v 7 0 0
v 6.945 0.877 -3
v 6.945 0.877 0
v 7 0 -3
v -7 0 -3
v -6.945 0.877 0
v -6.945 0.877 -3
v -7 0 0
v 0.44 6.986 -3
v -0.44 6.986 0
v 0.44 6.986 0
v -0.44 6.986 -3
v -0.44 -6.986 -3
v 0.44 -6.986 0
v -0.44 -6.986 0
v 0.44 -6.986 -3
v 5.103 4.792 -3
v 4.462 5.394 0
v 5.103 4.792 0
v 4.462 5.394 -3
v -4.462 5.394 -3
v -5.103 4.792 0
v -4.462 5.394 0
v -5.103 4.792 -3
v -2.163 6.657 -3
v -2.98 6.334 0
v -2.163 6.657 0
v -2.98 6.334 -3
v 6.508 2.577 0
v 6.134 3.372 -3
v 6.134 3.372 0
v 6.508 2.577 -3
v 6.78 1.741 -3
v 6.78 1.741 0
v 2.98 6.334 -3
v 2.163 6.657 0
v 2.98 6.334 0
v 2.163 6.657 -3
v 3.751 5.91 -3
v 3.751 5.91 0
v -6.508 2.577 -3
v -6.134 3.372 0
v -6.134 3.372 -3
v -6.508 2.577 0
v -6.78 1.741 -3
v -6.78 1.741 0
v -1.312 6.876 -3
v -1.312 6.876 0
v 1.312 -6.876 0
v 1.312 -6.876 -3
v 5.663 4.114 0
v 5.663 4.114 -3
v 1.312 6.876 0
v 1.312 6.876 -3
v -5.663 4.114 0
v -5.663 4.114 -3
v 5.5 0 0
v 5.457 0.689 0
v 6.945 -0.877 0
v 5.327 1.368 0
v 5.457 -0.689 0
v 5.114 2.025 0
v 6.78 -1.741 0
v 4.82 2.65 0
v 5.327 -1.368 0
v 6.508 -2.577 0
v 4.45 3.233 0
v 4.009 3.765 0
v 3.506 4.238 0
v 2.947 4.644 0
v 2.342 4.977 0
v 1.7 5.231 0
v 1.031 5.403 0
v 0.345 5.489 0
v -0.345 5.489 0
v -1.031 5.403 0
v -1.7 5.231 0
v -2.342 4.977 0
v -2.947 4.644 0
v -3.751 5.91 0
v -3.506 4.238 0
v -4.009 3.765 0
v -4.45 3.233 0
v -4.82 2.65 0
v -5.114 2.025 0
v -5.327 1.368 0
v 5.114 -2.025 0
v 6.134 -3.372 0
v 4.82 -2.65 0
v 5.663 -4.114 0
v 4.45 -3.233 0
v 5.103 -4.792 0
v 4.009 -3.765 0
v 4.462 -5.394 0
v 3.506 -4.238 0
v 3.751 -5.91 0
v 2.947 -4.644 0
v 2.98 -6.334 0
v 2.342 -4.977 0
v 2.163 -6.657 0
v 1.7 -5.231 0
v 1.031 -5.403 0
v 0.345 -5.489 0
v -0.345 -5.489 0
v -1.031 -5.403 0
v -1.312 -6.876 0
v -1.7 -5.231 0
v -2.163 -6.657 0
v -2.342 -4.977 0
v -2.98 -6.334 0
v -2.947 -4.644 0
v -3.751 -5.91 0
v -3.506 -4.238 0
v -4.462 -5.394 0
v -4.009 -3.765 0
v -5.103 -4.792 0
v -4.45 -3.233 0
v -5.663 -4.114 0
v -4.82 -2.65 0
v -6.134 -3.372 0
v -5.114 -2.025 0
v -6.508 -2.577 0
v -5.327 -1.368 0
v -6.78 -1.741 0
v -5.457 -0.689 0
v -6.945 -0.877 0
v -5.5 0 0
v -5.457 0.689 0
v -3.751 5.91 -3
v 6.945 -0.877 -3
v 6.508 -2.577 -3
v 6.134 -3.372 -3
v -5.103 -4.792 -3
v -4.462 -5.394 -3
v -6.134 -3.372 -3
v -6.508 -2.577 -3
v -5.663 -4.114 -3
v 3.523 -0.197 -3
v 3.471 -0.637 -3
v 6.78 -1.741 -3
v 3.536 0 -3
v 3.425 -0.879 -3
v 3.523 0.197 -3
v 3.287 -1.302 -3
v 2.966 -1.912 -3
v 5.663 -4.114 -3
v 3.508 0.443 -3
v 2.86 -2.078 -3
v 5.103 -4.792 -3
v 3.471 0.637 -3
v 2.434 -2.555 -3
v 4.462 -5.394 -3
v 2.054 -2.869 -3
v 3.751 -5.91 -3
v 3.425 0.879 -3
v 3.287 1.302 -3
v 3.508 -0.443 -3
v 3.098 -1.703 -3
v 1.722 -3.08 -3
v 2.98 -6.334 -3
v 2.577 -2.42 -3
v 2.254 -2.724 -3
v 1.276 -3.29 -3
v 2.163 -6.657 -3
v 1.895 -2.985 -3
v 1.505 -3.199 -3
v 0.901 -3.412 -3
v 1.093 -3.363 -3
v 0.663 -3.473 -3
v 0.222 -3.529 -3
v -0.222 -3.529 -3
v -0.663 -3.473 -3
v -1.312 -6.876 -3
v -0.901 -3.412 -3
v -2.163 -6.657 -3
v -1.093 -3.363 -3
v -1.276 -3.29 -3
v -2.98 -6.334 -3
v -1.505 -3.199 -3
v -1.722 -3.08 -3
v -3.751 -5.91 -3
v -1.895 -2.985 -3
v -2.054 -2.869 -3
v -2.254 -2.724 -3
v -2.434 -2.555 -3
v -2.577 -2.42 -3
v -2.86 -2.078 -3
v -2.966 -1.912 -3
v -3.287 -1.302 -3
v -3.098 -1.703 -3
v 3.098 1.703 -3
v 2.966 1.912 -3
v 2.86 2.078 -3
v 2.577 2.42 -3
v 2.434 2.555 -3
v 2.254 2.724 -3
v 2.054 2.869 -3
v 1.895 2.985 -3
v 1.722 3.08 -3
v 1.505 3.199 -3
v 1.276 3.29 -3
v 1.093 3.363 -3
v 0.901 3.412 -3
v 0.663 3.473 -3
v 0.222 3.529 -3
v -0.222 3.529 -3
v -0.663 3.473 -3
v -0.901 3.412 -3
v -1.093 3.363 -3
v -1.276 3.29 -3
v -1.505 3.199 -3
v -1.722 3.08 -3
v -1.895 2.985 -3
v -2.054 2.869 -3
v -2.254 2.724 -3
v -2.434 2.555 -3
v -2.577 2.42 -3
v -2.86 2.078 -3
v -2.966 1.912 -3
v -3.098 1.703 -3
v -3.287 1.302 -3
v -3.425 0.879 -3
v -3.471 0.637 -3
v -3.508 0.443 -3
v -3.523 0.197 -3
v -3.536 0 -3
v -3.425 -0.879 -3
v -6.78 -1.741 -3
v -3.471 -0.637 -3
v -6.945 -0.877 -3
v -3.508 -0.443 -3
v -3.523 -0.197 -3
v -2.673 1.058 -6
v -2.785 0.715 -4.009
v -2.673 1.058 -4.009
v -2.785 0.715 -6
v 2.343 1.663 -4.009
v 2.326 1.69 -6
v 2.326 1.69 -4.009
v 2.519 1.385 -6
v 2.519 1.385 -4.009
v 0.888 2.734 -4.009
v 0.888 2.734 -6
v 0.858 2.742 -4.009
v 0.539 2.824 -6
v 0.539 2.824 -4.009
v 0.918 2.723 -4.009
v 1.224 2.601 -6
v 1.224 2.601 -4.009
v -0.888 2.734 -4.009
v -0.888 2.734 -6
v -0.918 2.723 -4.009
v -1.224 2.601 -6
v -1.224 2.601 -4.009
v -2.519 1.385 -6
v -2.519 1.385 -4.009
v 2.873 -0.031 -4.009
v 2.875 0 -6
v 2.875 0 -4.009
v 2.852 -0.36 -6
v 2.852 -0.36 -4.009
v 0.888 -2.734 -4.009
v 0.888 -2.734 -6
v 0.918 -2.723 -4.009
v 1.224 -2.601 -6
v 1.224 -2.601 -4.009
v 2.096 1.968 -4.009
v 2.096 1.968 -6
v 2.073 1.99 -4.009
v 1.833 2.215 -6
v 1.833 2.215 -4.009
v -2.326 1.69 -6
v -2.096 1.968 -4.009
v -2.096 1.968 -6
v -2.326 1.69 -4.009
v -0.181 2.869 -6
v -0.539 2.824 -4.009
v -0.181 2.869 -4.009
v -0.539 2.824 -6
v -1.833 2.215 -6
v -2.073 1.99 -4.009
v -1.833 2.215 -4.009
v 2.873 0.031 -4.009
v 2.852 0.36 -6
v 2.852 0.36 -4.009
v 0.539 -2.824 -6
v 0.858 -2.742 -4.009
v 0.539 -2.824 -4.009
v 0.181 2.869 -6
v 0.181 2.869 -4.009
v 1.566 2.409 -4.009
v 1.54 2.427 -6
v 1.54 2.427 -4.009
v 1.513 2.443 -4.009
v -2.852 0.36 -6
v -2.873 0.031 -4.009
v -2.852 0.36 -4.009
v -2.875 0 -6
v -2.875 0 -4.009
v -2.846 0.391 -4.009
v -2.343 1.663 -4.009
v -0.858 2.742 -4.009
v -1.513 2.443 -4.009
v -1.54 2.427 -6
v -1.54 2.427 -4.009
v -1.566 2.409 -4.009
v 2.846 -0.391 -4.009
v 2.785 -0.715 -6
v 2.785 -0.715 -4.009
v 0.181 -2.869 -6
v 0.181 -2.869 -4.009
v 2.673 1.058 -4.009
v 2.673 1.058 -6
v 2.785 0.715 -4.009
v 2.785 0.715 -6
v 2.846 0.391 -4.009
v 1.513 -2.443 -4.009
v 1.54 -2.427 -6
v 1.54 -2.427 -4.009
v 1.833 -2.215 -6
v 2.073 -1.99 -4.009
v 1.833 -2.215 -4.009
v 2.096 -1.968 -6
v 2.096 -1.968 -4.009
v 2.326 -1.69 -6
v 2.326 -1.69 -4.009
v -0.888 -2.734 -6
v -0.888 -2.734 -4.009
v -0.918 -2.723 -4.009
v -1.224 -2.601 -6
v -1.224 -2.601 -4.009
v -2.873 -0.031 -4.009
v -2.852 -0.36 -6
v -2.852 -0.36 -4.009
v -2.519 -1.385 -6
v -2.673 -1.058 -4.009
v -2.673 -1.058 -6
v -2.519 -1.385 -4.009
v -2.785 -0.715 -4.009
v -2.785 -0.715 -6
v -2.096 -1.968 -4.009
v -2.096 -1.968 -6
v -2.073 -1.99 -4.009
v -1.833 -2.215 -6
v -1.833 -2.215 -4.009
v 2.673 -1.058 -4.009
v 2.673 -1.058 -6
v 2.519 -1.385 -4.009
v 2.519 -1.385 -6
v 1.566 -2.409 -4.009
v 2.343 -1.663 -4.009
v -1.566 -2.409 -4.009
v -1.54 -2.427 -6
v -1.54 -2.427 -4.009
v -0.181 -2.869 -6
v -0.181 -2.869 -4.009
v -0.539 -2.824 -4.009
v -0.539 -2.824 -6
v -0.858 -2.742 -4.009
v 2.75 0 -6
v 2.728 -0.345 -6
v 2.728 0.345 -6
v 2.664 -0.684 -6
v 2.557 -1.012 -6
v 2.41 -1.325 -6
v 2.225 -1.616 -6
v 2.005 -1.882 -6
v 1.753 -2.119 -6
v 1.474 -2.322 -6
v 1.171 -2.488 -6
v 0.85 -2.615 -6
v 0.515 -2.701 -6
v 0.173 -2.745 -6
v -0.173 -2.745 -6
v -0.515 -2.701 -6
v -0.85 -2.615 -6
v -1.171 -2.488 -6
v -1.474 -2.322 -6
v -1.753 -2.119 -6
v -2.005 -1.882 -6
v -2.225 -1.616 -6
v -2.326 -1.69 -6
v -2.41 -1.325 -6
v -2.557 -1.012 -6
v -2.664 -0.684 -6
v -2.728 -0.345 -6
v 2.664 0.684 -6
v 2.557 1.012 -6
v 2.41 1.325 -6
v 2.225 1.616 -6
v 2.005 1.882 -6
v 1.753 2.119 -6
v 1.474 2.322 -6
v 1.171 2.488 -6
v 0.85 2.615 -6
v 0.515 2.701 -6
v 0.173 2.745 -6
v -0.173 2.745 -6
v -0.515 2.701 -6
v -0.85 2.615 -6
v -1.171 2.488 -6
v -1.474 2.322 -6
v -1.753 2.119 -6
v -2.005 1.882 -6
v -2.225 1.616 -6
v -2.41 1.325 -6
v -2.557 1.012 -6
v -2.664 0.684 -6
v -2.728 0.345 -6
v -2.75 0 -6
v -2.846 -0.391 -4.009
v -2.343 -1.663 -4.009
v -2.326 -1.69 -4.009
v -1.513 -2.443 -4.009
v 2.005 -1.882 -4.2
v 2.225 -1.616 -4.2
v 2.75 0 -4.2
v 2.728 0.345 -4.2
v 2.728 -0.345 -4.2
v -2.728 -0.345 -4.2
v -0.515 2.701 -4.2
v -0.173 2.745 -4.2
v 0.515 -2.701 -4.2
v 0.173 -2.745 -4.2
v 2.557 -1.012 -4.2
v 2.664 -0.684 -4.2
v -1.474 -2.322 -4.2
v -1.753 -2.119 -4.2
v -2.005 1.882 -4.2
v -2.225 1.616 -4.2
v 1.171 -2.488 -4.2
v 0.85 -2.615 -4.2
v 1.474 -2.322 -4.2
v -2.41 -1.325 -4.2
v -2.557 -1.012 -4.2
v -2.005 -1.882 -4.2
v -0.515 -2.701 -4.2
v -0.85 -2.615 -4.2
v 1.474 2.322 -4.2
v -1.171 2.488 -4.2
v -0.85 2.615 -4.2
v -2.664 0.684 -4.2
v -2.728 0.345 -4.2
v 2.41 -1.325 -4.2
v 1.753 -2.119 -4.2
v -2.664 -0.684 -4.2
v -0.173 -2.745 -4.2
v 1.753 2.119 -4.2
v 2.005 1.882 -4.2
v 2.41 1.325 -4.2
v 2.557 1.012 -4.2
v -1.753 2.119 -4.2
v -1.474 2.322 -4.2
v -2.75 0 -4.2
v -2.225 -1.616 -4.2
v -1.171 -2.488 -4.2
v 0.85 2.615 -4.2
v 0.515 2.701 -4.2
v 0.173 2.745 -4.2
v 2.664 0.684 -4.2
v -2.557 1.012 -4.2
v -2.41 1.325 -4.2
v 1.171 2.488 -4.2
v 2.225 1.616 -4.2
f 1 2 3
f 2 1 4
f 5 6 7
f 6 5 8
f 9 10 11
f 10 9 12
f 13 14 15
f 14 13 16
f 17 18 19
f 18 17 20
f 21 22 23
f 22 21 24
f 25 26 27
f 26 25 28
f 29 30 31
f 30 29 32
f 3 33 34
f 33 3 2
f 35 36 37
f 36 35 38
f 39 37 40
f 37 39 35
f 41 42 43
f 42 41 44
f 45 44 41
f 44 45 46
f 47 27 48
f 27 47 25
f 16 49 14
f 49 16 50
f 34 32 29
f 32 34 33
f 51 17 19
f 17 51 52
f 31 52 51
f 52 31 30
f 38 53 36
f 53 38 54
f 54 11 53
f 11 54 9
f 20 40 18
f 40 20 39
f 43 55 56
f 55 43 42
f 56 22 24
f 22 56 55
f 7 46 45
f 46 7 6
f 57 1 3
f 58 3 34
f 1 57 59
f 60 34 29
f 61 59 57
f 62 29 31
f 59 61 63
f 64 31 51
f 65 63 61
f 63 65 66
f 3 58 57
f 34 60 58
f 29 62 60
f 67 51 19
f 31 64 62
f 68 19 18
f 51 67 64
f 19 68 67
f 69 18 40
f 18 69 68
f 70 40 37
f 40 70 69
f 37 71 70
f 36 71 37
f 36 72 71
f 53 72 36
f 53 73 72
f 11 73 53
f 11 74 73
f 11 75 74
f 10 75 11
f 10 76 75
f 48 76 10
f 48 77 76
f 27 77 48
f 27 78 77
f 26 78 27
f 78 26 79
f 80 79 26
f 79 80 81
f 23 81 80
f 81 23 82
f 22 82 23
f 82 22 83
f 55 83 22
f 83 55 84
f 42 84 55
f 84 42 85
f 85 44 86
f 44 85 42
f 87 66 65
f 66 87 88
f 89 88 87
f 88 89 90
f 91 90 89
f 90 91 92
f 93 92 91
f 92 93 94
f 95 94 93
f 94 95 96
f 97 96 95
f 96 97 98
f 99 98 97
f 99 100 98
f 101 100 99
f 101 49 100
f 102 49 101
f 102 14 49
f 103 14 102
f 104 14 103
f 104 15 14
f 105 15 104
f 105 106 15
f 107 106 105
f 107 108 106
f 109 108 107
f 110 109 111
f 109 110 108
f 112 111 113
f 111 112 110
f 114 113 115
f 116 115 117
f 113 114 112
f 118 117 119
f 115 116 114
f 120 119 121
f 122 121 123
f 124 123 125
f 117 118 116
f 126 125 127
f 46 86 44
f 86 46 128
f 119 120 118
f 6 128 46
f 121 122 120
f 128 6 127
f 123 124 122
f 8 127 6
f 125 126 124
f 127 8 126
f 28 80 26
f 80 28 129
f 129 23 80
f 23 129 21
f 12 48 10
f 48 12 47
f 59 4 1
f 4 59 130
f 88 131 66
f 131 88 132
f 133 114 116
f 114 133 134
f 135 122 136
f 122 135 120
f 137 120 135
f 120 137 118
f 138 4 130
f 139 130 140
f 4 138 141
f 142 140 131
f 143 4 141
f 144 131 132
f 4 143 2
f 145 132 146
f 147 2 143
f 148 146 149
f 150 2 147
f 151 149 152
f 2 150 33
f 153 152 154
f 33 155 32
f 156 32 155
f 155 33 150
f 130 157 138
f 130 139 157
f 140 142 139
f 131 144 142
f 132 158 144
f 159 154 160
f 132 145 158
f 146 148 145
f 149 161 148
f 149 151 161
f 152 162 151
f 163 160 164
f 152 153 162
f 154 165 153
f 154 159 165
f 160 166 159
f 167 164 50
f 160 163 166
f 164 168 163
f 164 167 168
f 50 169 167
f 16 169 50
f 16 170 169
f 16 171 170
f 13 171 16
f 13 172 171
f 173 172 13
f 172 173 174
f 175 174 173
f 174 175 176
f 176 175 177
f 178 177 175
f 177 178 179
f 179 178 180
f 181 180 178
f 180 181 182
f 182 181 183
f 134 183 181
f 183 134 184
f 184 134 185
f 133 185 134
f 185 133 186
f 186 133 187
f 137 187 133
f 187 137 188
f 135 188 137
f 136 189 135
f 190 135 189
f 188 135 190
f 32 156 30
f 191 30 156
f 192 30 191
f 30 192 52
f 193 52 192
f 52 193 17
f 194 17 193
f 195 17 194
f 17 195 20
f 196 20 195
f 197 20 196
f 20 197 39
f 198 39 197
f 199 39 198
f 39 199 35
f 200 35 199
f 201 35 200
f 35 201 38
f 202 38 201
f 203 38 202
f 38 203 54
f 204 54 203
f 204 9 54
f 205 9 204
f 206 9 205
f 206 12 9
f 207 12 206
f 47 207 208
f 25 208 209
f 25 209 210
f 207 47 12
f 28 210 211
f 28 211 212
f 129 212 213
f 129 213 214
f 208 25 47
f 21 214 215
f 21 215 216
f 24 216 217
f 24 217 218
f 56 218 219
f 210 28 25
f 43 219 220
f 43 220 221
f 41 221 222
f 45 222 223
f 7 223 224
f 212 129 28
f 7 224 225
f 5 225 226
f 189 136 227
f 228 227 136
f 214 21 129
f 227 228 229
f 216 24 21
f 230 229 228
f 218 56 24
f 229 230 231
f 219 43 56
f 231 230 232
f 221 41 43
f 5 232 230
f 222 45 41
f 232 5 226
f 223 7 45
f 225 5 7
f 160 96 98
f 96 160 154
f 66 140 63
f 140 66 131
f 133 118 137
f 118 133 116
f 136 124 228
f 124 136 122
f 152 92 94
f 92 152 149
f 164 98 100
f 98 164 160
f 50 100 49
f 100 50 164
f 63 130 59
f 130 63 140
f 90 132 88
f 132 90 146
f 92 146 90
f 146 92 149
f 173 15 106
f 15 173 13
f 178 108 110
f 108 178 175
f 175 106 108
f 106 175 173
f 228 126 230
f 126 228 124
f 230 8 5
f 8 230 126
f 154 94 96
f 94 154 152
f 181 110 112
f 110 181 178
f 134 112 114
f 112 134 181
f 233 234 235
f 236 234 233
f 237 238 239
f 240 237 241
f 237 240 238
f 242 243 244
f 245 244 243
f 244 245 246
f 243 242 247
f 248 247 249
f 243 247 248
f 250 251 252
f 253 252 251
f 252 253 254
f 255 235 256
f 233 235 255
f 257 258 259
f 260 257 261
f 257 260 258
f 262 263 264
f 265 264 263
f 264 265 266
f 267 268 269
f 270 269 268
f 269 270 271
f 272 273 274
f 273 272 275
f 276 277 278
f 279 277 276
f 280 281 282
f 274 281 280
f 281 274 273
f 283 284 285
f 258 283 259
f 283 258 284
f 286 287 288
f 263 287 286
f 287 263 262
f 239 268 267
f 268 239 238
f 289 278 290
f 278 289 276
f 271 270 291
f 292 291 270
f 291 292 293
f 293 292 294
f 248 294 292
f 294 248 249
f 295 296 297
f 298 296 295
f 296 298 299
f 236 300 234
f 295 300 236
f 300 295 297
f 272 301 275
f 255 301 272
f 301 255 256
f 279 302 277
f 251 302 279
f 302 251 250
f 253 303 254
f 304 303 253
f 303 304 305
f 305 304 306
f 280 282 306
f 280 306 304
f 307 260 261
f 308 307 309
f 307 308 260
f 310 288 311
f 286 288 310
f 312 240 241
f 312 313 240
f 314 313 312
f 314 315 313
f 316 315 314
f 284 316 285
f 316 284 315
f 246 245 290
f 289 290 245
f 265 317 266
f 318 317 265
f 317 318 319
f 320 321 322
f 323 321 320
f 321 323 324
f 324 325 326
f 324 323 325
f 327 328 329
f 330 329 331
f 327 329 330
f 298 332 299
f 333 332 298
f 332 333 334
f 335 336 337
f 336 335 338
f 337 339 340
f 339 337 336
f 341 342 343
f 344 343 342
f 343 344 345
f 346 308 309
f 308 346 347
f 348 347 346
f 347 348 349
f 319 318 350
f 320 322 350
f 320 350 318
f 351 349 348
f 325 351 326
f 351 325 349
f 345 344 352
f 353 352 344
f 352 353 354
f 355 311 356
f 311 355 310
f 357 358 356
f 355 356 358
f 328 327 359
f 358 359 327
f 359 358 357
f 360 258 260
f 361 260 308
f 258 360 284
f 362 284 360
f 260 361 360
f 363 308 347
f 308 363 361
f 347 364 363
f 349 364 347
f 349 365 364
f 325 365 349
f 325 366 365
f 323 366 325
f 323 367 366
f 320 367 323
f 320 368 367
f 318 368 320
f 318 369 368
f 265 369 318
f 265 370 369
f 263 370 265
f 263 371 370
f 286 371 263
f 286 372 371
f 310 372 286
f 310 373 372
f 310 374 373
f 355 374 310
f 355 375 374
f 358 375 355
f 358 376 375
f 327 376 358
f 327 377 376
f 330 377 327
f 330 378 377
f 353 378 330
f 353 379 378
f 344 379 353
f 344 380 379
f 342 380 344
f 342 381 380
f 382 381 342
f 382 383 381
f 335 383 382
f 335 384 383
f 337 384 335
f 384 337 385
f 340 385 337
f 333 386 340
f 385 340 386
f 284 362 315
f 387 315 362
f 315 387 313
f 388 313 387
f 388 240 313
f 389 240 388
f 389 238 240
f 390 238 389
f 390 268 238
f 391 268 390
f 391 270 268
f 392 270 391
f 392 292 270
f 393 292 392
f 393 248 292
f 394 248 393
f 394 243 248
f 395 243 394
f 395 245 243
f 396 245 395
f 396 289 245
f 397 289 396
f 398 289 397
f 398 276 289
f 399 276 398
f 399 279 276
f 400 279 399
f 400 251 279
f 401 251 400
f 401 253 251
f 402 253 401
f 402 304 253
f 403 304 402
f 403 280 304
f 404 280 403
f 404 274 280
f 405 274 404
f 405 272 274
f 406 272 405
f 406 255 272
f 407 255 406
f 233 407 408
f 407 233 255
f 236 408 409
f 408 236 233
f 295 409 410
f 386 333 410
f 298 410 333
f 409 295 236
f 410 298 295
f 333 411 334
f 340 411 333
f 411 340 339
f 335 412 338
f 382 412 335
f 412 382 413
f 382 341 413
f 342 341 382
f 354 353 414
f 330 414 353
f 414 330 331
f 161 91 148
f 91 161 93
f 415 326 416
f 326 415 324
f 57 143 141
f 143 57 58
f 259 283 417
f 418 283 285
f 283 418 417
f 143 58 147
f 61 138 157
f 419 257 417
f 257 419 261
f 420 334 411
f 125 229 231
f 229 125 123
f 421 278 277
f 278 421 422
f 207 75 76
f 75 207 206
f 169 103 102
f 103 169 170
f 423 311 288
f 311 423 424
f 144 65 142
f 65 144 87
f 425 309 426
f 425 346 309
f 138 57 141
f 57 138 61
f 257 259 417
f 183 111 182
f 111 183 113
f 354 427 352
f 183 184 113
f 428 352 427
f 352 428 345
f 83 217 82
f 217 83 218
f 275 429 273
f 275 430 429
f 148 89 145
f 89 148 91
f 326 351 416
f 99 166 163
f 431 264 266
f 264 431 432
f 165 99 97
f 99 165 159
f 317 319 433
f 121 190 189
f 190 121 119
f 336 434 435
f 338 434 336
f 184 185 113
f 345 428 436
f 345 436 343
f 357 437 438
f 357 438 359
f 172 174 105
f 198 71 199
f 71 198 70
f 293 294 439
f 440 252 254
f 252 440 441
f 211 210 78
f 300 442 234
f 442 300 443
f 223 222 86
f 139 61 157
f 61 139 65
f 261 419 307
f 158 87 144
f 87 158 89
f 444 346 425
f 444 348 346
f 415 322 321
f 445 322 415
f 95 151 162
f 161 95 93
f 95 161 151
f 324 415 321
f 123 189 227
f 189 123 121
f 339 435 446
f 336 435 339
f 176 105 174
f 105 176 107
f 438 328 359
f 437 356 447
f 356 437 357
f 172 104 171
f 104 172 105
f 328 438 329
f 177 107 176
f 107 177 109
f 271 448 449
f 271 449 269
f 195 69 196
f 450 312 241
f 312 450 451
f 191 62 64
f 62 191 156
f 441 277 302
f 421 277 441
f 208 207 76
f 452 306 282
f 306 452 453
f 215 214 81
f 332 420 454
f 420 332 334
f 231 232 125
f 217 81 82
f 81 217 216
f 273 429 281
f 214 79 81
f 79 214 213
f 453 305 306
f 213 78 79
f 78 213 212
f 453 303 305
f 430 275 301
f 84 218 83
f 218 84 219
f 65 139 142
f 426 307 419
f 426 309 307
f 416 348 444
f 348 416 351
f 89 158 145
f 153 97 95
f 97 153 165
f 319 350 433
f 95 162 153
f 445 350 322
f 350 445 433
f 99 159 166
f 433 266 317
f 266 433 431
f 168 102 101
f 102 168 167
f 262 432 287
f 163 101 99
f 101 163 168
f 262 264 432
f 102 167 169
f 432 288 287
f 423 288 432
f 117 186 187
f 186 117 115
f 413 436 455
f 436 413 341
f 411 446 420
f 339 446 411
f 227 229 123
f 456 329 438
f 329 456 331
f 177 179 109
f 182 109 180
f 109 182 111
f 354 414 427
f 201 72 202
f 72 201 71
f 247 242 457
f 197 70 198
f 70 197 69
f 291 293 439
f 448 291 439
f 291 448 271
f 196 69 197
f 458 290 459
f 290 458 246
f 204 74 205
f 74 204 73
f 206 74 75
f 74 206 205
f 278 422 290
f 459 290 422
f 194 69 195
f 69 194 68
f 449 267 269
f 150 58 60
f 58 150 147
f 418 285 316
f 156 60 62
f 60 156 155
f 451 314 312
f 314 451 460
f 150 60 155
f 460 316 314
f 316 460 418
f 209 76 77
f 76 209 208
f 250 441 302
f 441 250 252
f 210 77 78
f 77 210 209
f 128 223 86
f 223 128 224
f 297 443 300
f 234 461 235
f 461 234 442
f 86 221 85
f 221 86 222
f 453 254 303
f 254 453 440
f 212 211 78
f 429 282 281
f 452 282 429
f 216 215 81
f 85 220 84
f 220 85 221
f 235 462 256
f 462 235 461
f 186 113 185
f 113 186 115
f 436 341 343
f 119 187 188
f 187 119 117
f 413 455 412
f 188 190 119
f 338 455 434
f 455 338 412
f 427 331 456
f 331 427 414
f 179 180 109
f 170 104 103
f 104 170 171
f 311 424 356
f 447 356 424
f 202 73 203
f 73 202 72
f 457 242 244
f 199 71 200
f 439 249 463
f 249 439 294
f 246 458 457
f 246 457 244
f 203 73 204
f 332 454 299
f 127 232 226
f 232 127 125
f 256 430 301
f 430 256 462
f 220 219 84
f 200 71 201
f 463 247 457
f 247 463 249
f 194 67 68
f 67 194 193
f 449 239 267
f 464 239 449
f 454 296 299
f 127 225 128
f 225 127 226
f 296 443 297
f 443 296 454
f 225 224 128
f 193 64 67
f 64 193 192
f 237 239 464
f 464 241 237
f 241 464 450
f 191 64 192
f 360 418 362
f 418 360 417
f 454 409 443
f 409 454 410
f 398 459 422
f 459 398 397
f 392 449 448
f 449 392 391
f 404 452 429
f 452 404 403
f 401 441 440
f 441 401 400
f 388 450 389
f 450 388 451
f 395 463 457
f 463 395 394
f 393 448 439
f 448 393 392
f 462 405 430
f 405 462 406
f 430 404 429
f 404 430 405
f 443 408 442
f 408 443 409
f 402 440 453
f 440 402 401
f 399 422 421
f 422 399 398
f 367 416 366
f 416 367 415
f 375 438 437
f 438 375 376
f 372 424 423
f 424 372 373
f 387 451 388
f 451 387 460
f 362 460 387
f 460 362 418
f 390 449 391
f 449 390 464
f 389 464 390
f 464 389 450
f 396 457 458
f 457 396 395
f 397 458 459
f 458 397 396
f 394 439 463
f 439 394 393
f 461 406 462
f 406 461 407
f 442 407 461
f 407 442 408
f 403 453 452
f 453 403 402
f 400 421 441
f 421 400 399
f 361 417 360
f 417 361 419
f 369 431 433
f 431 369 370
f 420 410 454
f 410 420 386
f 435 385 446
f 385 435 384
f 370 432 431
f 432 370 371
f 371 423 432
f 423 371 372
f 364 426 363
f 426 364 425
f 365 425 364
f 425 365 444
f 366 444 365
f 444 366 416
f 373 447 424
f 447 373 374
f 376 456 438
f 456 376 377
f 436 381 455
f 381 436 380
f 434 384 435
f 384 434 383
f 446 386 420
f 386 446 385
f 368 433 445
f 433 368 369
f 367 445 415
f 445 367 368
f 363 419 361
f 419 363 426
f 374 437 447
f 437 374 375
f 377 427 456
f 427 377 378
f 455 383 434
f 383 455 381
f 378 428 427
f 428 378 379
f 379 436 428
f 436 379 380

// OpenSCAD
$fn = 50;


difference() {
	union() {
		translate(v = [0, 0, -3.0000000000]) {
			cylinder(h = 3, r = 7.0000000000);
		}
		#translate(v = [0, 0, -6.0000000000]) {
			cylinder(h = 6, r = 2.8750000000);
		}
	}
	union() {
		translate(v = [0, 0, 0]) {
			rotate(a = [0, 0, 0]) {
				difference() {
					union() {
						translate(v = [0, 0, -6.0000000000]) {
							cylinder(h = 6, r = 2.2500000000);
						}
						translate(v = [0, 0, -4.2000000000]) {
							cylinder(h = 4.2000000000, r1 = 2.7500000000, r2 = 5.5000000000);
						}
						translate(v = [0, 0, -6.0000000000]) {
							cylinder(h = 6, r = 2.7500000000);
						}
						translate(v = [0, 0, -6.0000000000]) {
							cylinder(h = 6, r = 2.2500000000);
						}
					}
					union();
				}
			}
		}
	}
}
